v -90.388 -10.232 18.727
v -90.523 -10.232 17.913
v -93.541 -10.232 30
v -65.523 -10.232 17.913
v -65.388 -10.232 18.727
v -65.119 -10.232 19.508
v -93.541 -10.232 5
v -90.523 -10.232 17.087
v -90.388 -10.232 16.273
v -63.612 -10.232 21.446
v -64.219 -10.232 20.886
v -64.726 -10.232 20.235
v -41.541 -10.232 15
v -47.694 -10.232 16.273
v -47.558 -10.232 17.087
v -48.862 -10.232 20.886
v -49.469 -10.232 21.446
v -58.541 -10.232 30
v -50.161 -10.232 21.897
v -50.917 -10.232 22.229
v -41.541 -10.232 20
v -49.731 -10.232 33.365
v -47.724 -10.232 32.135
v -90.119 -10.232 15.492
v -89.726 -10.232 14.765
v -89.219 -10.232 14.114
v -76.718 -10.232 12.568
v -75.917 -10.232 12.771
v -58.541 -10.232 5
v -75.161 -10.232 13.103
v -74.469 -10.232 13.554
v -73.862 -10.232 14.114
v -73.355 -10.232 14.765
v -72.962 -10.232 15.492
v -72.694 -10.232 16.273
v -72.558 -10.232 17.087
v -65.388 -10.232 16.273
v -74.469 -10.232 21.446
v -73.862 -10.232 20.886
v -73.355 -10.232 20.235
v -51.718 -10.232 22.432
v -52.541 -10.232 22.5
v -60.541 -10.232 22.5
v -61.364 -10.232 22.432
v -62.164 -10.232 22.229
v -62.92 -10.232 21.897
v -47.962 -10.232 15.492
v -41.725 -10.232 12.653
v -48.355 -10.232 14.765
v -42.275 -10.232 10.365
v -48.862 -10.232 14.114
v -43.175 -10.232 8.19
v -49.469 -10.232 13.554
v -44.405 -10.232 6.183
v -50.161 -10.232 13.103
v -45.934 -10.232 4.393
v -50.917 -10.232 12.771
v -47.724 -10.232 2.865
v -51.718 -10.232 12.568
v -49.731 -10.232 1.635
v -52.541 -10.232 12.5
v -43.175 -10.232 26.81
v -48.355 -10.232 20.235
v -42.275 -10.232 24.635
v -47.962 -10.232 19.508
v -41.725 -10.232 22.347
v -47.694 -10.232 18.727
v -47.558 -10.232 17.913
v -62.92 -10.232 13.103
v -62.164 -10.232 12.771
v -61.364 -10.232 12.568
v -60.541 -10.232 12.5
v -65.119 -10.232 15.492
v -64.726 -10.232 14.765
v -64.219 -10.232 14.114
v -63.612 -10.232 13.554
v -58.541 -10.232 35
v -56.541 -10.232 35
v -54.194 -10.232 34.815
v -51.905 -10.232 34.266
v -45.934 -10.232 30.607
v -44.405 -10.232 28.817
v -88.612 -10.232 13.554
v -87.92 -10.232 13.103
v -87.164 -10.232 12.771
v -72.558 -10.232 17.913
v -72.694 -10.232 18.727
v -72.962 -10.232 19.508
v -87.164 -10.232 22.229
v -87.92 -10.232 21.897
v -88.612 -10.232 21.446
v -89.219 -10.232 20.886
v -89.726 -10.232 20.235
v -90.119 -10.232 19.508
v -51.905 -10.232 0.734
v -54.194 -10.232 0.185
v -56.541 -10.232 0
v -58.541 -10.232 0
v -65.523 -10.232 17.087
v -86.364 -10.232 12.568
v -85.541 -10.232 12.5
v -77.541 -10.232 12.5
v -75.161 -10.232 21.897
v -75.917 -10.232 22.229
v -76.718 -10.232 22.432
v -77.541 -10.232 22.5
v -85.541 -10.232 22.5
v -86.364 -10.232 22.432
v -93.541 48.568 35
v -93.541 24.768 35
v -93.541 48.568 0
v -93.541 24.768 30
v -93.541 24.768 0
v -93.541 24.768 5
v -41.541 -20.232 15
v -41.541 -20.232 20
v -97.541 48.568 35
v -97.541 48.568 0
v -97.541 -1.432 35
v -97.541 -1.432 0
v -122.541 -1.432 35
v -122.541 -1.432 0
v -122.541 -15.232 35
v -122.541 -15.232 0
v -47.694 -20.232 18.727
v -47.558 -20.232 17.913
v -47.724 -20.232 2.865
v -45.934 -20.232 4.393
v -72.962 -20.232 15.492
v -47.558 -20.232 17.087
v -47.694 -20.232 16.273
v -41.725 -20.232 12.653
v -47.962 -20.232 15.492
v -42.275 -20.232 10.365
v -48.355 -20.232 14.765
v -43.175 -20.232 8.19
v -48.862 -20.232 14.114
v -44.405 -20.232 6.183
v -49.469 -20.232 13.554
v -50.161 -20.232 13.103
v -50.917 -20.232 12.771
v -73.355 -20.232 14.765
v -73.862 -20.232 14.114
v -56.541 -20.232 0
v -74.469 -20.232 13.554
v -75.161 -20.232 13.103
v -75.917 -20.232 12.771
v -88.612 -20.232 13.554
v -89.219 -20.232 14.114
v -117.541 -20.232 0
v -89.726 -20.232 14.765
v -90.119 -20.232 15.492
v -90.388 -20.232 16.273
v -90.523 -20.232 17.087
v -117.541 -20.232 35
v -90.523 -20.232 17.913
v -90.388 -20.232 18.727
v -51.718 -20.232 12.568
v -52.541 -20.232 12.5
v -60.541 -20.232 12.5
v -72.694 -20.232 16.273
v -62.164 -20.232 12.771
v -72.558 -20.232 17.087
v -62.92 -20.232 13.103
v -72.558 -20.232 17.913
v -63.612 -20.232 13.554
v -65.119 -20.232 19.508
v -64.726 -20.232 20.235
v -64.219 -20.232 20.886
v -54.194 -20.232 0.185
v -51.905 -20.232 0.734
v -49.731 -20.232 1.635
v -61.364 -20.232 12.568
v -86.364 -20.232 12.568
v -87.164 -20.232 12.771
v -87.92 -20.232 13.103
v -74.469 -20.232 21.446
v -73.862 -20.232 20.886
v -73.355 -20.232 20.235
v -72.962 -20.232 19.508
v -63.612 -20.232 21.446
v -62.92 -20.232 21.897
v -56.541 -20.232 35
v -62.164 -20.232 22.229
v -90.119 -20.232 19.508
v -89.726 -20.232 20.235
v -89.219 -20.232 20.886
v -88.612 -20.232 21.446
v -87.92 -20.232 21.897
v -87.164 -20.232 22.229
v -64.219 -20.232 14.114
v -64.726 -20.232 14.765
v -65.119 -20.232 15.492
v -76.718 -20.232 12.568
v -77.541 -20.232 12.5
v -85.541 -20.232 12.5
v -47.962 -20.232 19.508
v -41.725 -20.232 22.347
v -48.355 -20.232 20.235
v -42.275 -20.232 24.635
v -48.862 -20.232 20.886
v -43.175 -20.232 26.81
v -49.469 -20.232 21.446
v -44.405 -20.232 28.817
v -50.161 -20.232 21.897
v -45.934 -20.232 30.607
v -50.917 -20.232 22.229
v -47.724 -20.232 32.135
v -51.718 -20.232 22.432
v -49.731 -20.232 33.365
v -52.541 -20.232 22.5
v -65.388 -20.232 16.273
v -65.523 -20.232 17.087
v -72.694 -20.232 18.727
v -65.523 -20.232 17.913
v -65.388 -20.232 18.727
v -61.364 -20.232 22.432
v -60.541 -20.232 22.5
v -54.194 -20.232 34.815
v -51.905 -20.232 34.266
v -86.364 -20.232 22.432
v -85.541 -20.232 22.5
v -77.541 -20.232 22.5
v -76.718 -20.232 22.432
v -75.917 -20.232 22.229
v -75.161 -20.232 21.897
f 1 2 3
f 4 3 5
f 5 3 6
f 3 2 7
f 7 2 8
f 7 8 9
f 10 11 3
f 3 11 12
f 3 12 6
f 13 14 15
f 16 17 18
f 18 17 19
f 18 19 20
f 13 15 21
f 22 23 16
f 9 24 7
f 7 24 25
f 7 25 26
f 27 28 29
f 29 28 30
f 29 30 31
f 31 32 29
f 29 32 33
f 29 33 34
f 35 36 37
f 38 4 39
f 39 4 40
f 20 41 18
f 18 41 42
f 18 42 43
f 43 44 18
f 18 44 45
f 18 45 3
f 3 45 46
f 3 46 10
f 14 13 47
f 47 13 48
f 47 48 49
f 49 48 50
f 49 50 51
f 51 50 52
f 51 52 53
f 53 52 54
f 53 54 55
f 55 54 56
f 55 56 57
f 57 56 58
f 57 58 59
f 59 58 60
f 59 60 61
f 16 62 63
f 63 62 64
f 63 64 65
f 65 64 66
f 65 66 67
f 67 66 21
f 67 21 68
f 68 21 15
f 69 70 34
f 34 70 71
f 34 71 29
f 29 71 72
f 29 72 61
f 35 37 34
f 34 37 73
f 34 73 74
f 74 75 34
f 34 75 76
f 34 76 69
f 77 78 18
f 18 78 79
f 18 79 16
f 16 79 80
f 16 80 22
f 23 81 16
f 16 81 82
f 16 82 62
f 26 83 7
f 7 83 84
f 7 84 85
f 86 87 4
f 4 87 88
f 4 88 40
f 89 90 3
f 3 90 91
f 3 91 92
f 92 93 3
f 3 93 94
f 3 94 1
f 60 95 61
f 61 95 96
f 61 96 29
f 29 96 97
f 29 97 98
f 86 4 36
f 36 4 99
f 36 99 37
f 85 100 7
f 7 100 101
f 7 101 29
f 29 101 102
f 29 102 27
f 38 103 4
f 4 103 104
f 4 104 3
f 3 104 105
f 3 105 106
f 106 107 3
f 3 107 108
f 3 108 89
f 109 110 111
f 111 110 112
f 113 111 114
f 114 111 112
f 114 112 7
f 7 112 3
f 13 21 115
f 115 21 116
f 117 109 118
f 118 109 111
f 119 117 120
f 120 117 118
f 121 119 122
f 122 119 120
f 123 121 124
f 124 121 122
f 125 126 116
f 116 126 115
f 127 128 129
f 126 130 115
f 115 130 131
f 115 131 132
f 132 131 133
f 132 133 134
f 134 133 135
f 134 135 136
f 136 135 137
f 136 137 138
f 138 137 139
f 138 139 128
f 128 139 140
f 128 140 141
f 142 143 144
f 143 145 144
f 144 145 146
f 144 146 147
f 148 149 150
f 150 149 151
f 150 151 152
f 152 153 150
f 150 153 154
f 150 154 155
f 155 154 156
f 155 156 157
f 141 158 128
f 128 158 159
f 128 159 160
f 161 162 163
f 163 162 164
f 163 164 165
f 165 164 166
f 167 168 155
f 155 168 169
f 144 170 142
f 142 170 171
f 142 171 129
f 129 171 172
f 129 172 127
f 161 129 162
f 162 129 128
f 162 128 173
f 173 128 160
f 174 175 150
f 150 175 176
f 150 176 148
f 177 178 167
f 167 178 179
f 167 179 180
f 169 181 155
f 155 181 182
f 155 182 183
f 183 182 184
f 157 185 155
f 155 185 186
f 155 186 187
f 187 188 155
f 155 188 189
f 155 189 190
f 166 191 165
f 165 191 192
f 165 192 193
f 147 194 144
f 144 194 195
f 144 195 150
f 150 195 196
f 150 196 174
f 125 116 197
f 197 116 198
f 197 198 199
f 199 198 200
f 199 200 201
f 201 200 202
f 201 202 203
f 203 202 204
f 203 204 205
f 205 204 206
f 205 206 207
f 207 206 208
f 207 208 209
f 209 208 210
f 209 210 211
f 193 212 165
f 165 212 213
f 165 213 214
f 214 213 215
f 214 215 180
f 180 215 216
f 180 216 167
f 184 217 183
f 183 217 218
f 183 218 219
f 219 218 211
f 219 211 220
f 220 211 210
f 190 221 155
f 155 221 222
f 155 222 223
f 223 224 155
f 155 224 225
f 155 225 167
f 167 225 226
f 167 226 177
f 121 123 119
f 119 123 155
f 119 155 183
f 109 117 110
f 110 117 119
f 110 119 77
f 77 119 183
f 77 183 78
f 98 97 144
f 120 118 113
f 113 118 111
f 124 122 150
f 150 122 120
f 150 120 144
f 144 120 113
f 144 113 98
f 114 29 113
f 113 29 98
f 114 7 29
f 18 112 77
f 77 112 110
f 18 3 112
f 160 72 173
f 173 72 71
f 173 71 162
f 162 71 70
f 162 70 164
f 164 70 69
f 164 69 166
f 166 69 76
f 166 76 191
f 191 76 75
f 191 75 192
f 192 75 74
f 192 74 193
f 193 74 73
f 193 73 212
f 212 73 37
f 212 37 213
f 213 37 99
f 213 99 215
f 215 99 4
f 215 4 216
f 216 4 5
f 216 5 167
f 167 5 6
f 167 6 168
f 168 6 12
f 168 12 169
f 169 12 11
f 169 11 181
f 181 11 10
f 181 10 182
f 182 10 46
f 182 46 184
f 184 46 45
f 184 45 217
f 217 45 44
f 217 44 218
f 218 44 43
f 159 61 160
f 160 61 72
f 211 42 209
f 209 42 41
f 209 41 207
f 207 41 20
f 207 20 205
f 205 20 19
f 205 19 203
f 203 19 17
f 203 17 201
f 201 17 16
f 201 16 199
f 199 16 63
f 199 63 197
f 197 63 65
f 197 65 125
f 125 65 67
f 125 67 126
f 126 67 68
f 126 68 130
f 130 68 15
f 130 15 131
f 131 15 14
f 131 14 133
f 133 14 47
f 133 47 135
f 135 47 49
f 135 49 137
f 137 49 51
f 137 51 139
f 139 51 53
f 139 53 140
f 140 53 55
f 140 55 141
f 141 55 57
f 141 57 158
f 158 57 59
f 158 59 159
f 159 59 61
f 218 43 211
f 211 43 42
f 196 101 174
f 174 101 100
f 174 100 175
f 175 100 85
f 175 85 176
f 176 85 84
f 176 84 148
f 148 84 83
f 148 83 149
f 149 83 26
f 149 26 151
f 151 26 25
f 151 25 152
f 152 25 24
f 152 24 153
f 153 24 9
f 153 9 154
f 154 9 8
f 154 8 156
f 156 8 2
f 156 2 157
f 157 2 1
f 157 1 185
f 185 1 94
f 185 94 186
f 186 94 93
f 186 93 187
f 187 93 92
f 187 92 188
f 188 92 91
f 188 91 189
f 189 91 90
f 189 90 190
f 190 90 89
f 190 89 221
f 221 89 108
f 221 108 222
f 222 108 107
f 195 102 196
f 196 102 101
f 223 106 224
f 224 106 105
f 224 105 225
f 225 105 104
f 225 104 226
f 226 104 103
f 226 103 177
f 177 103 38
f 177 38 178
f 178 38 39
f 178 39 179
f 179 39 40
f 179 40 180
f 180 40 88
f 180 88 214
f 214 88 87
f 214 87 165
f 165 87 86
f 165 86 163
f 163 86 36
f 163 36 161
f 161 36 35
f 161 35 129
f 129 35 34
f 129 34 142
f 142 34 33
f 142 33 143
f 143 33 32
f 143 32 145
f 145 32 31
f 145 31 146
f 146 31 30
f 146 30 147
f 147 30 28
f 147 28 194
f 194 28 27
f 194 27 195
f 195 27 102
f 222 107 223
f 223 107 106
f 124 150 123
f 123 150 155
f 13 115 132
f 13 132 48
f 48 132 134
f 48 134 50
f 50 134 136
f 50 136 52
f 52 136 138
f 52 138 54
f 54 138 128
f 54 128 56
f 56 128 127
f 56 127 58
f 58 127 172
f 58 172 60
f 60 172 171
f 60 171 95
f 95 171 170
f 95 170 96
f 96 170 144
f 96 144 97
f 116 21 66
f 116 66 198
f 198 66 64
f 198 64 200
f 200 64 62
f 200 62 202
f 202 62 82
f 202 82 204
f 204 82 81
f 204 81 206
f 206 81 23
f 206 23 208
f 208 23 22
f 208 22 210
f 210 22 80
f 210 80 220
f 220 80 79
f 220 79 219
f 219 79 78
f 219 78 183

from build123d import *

# Parameters (mm, degrees)
BOSS_EXTRUDE1_DEPTH = 35
BOSS_EXTRUDE2_DEPTH = 5
BOSS_EXTRUDE3_START = 35
BOSS_EXTRUDE3_DEPTH = 5
CUT_EXTRUDE1_DEPTH  = 137.38179019
CHAMFER1_SIZE       = 5
FILLET1_R           = 15


with BuildPart() as part:
    # Sketch1 → Boss-Extrude1 (new body)
    with BuildSketch(Plane.XY):
        Polygon((-41.540540541, -20.232432432), (-122.540540541, -20.232432432), (-122.540540541, -1.432432432), (-97.540540541, -1.432432432), (-97.540540541, 48.567567568), (-93.540540541, 48.567567568), (-93.540540541, -10.232432432), (-41.540540541, -10.232432432), align=None)
    extrude(amount=BOSS_EXTRUDE1_DEPTH)

    # Sketch3 → Boss-Extrude2 (add)
    with BuildSketch(Plane.XY):
        Polygon((-93.540540541, 24.767567568), (-93.540540541, -10.232432432), (-58.540540541, -10.232432432), align=None)
    extrude(amount=BOSS_EXTRUDE2_DEPTH)

    # Sketch3<2> → Boss-Extrude3 (add)
    with BuildSketch(Plane.XY.offset(BOSS_EXTRUDE3_START)):
        Polygon((-93.540540541, 24.767567568), (-93.540540541, -10.232432432), (-58.540540541, -10.232432432), align=None)
    extrude(amount=-BOSS_EXTRUDE3_DEPTH)

    # Sketch2 → Cut-Extrude1 (cut, through all)
    with BuildSketch(Plane(origin=(0, 0, 0), x_dir=(1, 0, 0), z_dir=(0, 1, 0))):
        with BuildLine():
            Line((-85.540540541, -12.5), (-77.540540541, -12.5))
            ThreePointArc((-77.540540541, -12.5), (-72.540540541, -17.5), (-77.540540541, -22.5))
            Line((-77.540540541, -22.5), (-85.540540541, -22.5))
            ThreePointArc((-85.540540541, -22.5), (-90.540540541, -17.5), (-85.540540541, -12.5))
        make_face()
        with BuildLine():
            Line((-60.540540541, -12.5), (-52.540540541, -12.5))
            ThreePointArc((-52.540540541, -12.5), (-47.540540541, -17.5), (-52.540540541, -22.5))
            Line((-52.540540541, -22.5), (-60.540540541, -22.5))
            ThreePointArc((-60.540540541, -22.5), (-65.540540541, -17.5), (-60.540540541, -12.5))
        make_face()
    extrude(amount=-CUT_EXTRUDE1_DEPTH, mode=Mode.SUBTRACT)

    # Chamfer1
    chamfer1_edges = [part.edges().sort_by_distance(p)[0] for p in [
        (-122.540540541, -20.232432432, 17.5),
    ]]
    chamfer(chamfer1_edges, length=CHAMFER1_SIZE)

    # Fillet1
    fillet1_edges = [part.edges().sort_by_distance(p)[0] for p in [
        (-41.540540541, -15.232432432, 0),
        (-41.540540541, -15.232432432, 35),
    ]]
    fillet(fillet1_edges, radius=FILLET1_R)


solid = part.part
